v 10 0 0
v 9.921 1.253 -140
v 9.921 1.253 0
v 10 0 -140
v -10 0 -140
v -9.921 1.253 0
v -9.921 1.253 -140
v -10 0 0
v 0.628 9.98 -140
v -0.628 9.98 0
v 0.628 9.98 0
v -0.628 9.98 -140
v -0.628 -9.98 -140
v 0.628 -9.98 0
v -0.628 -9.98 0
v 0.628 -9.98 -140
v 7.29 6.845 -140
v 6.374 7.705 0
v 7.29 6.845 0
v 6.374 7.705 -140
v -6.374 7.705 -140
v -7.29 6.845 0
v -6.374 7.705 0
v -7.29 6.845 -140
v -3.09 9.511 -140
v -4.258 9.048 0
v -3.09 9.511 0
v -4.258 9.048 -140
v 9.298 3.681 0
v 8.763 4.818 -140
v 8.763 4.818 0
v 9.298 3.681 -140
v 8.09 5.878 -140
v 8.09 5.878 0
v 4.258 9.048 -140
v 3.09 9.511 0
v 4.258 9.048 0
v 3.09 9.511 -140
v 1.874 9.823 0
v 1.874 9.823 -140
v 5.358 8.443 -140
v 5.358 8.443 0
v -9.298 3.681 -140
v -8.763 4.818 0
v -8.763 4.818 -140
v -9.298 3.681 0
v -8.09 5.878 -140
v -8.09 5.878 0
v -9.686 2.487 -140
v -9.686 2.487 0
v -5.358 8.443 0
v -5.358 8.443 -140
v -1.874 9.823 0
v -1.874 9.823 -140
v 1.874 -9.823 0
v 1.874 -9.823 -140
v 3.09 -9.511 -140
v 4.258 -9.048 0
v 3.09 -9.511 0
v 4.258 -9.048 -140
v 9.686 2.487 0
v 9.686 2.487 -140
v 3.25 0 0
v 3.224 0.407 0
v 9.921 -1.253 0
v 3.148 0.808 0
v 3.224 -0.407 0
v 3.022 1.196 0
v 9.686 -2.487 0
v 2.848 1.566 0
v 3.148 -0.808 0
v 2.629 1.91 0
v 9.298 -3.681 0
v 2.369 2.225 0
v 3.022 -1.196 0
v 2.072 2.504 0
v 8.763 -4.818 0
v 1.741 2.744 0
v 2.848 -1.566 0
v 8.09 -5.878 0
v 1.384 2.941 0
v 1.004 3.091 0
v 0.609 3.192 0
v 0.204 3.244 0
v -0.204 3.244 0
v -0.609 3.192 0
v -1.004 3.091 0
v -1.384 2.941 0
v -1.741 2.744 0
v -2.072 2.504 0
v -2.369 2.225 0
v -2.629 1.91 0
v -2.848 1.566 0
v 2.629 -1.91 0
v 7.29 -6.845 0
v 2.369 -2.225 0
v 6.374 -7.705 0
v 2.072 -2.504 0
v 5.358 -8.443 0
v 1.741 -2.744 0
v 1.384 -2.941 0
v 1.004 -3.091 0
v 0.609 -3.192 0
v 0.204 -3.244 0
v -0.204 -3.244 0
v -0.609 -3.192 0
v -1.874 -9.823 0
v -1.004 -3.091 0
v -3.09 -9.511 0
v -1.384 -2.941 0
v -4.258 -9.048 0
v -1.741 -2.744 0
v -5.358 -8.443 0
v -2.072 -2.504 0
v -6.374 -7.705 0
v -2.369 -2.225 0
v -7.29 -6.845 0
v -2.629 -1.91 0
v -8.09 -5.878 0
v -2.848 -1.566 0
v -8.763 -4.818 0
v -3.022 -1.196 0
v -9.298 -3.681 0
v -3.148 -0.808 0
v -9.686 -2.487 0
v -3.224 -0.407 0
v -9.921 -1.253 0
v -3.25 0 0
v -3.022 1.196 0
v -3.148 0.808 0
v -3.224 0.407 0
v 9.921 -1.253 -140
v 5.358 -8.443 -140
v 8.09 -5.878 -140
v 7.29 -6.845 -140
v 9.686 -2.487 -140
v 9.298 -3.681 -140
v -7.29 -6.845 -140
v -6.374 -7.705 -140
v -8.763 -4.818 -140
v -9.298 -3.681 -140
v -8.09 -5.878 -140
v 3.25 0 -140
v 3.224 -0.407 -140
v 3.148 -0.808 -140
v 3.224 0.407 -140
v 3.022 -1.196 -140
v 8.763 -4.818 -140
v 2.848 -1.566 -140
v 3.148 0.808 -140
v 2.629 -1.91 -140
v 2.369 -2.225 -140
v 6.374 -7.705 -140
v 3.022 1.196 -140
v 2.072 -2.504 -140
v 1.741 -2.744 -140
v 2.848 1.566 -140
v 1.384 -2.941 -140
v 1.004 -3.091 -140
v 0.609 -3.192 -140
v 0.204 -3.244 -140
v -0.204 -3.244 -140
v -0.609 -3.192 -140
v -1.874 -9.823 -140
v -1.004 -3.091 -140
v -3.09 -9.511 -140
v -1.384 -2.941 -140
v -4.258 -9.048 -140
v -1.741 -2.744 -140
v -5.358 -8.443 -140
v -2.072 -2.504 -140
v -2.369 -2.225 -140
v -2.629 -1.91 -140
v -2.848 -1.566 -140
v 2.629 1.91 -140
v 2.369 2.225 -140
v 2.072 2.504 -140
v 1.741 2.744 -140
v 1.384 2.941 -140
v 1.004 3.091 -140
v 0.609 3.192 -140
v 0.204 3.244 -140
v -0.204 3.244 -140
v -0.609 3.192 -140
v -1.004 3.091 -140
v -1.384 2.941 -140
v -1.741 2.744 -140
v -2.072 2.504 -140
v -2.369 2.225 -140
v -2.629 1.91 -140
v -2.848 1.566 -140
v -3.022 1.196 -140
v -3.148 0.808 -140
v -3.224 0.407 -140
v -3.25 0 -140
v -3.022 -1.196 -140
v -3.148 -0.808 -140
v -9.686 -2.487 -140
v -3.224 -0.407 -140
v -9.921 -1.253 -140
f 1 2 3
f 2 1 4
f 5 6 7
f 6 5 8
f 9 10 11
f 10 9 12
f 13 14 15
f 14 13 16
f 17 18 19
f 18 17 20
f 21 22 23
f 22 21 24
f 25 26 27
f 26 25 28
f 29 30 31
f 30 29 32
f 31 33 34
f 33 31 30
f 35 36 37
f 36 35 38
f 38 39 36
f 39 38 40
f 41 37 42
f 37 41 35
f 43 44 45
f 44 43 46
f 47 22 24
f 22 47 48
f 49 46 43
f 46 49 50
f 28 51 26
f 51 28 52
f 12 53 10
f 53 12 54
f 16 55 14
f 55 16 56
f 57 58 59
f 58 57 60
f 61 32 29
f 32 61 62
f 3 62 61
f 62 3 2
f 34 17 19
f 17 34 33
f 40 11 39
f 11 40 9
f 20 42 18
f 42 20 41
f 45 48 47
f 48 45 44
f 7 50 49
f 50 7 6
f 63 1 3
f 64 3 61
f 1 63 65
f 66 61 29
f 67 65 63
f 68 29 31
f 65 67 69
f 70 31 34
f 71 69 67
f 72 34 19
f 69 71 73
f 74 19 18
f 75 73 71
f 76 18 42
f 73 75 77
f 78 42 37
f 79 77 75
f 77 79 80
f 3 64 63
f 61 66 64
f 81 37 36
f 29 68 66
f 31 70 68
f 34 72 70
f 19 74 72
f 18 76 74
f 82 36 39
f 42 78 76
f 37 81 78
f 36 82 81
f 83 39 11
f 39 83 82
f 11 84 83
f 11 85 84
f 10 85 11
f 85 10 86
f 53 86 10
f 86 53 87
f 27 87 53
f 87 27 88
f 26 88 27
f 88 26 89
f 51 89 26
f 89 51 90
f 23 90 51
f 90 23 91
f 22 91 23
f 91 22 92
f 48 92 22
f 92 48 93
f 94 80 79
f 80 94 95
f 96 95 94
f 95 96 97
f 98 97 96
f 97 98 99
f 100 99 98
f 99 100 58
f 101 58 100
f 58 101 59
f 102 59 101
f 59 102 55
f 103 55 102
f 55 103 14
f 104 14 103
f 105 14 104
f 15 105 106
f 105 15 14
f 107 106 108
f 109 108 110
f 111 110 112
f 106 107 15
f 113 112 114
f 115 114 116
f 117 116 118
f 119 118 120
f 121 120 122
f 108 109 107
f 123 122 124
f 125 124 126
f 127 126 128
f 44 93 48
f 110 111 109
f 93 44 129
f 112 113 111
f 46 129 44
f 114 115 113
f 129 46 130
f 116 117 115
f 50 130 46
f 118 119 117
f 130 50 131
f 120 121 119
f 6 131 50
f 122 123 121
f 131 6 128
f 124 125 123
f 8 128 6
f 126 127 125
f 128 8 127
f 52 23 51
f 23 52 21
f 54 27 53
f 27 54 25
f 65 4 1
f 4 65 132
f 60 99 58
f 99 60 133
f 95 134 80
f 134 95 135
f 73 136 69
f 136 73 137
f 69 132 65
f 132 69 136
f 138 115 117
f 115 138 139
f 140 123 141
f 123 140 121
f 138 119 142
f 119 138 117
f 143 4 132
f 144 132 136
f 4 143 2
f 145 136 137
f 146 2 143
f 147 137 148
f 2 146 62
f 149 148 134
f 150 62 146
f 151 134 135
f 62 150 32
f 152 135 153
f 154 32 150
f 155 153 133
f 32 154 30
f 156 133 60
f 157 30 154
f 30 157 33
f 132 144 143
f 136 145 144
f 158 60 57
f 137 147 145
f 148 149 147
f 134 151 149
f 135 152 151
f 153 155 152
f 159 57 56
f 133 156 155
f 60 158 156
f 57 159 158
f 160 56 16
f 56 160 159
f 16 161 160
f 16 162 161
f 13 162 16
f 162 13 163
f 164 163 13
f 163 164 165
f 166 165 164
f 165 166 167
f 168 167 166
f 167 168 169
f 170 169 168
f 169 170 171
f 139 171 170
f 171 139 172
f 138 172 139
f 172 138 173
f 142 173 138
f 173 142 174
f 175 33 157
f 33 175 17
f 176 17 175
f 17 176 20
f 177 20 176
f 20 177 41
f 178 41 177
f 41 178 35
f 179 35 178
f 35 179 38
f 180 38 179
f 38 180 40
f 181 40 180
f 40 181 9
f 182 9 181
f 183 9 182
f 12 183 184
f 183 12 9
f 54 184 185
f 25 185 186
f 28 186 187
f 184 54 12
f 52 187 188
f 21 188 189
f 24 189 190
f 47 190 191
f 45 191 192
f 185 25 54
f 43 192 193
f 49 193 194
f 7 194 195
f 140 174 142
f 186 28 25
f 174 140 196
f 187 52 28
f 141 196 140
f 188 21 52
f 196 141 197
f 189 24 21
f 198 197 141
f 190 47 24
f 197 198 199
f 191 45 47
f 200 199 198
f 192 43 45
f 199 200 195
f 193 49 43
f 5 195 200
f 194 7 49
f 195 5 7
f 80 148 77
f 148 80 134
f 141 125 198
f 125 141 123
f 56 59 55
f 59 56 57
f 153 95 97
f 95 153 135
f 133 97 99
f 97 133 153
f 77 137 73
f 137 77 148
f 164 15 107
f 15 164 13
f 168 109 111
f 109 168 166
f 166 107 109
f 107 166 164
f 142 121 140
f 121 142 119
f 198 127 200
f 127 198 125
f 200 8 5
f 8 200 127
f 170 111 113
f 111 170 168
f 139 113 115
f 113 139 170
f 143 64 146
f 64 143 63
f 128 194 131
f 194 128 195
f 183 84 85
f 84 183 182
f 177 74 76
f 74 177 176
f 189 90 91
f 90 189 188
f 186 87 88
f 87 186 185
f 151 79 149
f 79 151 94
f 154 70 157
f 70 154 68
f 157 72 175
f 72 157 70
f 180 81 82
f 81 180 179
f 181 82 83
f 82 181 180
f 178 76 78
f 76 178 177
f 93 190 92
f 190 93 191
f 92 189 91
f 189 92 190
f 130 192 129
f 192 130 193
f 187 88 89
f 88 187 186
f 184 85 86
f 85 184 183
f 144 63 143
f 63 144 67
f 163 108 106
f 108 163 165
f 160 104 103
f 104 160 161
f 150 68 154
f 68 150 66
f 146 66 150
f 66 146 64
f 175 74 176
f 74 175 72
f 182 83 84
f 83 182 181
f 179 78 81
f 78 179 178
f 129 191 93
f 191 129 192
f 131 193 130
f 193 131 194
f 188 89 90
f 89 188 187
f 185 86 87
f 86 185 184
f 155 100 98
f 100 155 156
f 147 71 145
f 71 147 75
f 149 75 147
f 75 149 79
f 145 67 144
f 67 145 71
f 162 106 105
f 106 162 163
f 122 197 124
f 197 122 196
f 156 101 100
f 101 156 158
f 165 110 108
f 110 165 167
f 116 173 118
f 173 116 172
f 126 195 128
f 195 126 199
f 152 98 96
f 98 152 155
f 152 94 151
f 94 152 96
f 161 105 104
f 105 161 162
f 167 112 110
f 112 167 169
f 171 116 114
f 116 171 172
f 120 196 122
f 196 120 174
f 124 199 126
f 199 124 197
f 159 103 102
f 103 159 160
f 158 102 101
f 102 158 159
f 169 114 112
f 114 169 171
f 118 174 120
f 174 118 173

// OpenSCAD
$fn = 50;


difference() {
	union() {
		translate(v = [0, 0, -140.0000000000]) {
			cylinder(h = 140, r = 10.0000000000);
		}
		cylinder(h = 0, r = 16.0000000000);
	}
	union() {
		#translate(v = [0, 0, -140]) {
			cylinder(h = 140, r = 3.2500000000);
		}
	}
}
